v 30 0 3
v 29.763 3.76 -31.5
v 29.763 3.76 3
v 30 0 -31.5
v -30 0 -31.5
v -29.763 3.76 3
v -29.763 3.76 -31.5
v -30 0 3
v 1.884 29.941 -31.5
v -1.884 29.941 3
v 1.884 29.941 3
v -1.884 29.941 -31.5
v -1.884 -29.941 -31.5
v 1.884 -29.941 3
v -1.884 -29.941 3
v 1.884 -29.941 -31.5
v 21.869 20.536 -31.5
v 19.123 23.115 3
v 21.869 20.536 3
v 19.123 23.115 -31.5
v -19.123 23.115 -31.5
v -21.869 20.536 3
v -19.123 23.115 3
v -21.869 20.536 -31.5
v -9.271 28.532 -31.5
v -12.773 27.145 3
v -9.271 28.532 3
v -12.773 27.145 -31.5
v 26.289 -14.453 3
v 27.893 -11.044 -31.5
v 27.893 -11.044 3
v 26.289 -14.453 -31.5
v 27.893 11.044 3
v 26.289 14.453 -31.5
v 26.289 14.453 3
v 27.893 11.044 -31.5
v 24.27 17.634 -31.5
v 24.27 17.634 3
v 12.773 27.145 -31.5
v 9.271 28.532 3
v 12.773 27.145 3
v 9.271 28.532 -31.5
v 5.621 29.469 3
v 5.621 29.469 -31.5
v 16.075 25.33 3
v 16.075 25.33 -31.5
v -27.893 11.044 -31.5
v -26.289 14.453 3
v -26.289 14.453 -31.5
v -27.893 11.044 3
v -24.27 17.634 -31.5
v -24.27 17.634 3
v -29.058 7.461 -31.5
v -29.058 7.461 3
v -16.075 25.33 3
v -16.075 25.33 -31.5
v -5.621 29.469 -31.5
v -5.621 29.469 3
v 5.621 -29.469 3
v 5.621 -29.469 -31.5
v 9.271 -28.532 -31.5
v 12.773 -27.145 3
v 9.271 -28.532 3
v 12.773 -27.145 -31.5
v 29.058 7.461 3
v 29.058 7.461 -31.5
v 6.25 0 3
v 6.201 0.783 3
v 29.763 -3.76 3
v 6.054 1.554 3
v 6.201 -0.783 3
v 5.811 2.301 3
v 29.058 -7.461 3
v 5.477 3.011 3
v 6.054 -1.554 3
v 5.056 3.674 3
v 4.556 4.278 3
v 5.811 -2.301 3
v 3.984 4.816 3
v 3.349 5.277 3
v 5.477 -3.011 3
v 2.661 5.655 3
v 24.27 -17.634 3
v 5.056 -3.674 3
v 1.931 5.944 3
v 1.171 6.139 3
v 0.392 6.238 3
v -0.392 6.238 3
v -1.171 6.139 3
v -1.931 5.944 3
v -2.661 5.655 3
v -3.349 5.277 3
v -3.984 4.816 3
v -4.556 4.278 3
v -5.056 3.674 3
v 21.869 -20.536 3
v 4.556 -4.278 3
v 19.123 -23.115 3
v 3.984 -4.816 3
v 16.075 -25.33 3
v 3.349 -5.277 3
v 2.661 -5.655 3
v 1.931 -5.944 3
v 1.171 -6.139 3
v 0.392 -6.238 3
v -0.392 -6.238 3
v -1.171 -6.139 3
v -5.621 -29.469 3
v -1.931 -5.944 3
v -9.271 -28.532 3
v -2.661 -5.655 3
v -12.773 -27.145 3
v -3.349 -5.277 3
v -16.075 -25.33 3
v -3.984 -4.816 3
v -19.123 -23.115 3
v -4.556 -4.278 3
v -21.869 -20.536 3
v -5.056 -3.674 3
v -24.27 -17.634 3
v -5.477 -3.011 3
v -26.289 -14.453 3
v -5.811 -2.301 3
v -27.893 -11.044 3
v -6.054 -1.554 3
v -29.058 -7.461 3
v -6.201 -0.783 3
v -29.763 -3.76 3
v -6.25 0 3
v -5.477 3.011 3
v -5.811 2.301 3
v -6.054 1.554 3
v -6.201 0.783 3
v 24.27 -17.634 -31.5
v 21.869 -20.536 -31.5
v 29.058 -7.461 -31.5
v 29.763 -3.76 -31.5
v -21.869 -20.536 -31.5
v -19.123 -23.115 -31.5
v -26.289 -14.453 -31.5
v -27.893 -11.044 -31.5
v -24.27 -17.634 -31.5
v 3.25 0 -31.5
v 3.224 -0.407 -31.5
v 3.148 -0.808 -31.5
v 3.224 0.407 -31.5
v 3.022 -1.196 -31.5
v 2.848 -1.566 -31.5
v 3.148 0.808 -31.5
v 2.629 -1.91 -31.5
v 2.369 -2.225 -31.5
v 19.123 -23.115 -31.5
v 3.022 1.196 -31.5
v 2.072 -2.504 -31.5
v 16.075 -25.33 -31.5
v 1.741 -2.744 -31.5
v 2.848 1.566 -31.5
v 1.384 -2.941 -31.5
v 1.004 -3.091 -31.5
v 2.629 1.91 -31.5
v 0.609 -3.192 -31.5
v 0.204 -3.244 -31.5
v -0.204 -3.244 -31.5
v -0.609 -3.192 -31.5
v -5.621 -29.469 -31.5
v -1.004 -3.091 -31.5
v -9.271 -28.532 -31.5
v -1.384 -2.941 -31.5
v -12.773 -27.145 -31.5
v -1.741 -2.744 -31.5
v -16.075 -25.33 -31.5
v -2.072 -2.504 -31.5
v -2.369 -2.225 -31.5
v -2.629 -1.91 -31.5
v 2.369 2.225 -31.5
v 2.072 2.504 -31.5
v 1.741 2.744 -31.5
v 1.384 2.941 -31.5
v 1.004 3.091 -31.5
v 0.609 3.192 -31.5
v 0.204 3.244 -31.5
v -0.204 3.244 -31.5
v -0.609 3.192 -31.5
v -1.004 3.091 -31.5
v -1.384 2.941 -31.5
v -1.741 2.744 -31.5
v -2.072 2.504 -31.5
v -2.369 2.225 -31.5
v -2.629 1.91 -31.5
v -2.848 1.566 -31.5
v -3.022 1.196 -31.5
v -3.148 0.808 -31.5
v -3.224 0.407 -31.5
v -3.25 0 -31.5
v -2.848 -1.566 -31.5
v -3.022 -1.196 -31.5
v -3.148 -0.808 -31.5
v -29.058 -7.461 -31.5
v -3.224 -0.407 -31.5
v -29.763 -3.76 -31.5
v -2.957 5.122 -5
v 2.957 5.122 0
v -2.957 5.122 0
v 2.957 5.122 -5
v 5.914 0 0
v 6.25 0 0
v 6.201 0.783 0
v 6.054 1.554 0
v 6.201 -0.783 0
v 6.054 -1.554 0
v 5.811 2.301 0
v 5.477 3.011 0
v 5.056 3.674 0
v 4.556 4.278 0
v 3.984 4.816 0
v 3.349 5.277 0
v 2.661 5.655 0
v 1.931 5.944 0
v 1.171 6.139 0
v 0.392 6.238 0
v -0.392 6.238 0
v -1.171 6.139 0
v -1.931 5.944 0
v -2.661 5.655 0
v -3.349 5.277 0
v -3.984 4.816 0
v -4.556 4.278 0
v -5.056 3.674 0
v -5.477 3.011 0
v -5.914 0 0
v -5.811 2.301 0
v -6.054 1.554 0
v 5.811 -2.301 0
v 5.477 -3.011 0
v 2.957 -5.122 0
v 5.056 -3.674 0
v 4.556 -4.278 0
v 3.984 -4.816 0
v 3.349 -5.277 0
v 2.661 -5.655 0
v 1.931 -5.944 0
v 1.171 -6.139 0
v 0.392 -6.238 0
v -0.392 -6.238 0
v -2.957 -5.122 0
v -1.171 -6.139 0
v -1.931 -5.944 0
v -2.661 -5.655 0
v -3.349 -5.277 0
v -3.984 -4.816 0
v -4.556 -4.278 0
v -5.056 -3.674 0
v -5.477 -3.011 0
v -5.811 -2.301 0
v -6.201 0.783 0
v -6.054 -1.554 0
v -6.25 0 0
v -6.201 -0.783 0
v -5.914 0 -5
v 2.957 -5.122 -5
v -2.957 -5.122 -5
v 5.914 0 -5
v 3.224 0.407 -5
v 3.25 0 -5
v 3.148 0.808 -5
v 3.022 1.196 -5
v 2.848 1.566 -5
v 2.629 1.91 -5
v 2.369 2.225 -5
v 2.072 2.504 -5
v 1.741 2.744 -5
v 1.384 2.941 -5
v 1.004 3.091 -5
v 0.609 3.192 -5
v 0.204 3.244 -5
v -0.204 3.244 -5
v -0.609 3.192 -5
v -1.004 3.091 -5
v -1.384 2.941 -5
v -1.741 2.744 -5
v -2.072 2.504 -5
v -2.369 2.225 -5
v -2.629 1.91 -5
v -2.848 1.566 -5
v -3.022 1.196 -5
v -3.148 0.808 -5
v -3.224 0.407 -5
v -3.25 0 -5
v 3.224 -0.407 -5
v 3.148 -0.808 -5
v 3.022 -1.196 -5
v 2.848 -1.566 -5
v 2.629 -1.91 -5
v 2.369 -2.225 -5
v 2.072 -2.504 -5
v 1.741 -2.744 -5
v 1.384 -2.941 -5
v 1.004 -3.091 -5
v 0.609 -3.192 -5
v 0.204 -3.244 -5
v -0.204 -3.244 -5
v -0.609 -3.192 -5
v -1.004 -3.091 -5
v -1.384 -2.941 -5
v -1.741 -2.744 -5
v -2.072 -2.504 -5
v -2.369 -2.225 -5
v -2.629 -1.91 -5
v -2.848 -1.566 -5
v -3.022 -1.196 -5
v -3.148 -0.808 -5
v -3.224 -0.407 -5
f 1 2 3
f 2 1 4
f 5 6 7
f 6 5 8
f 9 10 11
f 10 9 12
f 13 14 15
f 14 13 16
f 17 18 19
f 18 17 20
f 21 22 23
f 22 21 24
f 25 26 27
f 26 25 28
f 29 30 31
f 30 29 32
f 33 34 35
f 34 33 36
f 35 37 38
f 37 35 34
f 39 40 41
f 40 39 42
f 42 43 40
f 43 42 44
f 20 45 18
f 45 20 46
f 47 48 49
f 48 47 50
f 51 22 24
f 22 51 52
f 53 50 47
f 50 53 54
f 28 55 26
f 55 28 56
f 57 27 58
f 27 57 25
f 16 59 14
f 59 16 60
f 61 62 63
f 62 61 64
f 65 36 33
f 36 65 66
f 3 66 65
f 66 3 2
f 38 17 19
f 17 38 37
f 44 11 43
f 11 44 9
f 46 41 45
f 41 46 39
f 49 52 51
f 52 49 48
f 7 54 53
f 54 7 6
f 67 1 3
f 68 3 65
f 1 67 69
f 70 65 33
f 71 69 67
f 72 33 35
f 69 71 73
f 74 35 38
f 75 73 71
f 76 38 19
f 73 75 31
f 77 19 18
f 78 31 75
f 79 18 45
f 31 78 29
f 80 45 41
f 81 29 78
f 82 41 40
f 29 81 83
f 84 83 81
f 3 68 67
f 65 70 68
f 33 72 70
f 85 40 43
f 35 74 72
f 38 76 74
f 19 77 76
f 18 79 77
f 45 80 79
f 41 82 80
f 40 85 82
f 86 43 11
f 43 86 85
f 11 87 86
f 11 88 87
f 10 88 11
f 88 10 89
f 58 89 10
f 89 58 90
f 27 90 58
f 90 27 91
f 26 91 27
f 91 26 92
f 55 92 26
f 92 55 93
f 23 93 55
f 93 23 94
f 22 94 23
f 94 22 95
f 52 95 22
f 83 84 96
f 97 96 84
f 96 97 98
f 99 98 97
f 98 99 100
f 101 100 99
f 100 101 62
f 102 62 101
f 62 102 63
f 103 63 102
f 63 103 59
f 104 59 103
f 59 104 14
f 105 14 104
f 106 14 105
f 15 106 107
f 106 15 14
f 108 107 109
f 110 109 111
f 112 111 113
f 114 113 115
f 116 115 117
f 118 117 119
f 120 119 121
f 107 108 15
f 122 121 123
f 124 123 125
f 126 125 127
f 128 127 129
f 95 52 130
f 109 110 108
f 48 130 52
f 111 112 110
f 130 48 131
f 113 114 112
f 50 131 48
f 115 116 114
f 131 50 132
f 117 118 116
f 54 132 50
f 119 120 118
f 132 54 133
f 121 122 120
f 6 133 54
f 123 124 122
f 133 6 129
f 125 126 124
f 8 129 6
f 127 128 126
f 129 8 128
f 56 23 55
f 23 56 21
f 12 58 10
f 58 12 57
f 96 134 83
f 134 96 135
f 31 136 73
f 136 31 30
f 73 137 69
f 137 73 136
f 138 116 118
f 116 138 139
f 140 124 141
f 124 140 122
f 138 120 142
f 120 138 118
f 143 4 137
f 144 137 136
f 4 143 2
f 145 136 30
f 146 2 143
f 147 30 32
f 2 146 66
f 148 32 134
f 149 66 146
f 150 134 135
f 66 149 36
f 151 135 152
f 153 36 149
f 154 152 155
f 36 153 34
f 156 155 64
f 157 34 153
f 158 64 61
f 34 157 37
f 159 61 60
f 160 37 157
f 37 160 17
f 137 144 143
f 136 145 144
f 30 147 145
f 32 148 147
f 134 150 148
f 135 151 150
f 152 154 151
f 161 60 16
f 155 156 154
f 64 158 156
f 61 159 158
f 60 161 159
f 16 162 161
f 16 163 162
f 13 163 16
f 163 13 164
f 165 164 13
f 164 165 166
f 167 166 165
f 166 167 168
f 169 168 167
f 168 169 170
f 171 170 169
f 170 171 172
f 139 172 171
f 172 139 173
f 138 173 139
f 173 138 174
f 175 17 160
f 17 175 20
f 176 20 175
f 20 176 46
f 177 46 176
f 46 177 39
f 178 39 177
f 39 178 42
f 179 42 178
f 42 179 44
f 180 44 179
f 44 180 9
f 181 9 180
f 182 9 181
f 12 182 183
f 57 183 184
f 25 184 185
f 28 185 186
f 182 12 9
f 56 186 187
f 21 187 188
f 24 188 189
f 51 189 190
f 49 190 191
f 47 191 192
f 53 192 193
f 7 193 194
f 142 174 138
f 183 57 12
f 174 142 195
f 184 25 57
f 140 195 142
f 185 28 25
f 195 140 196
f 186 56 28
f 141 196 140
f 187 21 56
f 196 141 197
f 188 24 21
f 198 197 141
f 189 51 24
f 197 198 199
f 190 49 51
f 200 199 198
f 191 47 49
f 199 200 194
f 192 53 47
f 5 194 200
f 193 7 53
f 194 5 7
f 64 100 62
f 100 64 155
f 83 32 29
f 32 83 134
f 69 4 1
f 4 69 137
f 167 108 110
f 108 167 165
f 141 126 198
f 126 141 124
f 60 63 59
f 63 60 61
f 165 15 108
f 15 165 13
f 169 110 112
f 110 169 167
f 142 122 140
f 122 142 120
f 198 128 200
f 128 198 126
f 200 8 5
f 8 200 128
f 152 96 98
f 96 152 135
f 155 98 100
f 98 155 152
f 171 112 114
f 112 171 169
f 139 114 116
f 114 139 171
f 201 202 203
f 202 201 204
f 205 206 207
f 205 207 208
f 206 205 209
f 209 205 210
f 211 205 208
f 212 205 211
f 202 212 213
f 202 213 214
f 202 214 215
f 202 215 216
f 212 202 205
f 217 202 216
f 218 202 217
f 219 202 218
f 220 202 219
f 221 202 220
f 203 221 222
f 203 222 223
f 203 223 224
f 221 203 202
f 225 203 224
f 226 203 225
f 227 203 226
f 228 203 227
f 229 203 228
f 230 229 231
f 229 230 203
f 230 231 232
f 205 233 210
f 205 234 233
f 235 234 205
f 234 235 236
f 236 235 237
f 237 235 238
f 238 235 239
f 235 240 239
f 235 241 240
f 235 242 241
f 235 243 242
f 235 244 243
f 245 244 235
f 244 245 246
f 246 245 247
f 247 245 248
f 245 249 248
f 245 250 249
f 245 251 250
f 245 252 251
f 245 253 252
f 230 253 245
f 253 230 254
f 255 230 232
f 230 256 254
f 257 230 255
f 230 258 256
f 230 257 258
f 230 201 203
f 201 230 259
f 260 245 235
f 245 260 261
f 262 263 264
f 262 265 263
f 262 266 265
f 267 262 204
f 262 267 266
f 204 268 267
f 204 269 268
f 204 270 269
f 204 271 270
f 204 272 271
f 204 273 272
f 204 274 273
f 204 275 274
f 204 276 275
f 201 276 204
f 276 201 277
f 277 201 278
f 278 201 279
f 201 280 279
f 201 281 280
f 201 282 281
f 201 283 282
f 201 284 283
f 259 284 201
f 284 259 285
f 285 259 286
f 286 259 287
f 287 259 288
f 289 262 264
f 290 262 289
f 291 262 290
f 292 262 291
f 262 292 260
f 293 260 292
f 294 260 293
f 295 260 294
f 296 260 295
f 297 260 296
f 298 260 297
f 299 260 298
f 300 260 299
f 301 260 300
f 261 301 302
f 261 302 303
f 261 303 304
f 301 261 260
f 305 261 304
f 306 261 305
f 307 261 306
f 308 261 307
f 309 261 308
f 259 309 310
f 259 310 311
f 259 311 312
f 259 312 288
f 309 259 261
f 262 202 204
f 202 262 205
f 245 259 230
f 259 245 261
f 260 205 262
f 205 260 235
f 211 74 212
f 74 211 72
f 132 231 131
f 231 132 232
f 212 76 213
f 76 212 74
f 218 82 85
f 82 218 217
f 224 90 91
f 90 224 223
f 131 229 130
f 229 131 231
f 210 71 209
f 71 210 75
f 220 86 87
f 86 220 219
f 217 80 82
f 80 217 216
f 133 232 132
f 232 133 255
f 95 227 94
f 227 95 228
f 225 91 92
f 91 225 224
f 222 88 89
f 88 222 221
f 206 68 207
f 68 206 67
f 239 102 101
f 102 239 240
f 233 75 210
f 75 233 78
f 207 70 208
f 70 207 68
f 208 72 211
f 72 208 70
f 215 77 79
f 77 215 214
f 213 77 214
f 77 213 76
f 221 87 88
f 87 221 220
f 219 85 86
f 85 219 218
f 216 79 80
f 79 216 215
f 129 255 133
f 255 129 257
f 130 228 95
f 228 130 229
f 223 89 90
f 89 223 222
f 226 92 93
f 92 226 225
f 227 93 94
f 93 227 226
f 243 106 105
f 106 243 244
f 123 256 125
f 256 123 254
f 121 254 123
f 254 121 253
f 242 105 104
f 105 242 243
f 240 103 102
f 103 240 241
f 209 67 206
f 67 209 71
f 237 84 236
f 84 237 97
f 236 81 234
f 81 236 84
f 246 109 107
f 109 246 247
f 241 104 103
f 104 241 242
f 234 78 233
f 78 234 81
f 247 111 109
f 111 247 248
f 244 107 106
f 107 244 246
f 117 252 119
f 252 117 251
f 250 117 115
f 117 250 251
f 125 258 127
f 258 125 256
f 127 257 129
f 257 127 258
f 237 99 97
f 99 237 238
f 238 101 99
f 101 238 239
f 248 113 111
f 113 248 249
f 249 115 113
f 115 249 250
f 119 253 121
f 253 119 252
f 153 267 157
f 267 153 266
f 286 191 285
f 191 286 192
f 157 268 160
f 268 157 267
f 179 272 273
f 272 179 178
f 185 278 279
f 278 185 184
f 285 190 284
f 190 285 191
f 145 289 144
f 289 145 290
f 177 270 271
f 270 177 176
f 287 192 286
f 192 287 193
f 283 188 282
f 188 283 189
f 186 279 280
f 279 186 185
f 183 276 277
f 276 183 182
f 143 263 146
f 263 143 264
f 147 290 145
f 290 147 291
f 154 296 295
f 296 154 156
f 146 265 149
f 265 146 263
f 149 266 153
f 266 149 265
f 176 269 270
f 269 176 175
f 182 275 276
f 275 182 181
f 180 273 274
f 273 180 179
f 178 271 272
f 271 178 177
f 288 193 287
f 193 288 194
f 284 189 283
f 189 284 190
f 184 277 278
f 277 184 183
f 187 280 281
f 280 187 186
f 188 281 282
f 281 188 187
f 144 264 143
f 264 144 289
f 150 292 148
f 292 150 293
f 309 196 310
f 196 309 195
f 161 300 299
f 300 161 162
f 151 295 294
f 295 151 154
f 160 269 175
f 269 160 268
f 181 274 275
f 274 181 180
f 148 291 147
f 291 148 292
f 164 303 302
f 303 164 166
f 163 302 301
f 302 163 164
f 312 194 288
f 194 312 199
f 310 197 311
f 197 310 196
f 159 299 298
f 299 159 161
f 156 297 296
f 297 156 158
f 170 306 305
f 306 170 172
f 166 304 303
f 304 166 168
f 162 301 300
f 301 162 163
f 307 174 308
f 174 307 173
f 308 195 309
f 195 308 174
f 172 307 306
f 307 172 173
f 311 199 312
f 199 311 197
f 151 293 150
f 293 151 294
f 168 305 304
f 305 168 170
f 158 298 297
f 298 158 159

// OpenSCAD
$fn = 50;


difference() {
	union() {
		translate(v = [0, 0, -31.5000000000]) {
			cylinder(h = 34.5000000000, r = 30.0000000000);
		}
		#translate(v = [0, 0, -33.0000000000]) {
			cylinder(h = 33, r = 2.8750000000);
		}
	}
	union() {
		translate(v = [0, 0, 0]) {
			rotate(a = [0, 0, 0]) {
				difference() {
					union() {
						translate(v = [0, 0, -5]) {
							linear_extrude(height = 5) {
								polygon(points = [[5.9142500000, 0.0000000000], [2.9571250000, 5.1218907443], [-2.9571250000, 5.1218907443], [-5.9142500000, 0.0000000000], [-2.9571250000, -5.1218907443], [2.9571250000, -5.1218907443]]);
							}
						}
					}
					union();
				}
			}
		}
		#cylinder(h = 3, r = 6.2500000000);
		#translate(v = [0, 0, -100.0000000000]) {
			cylinder(h = 200, r = 3.2500000000);
		}
	}
}
